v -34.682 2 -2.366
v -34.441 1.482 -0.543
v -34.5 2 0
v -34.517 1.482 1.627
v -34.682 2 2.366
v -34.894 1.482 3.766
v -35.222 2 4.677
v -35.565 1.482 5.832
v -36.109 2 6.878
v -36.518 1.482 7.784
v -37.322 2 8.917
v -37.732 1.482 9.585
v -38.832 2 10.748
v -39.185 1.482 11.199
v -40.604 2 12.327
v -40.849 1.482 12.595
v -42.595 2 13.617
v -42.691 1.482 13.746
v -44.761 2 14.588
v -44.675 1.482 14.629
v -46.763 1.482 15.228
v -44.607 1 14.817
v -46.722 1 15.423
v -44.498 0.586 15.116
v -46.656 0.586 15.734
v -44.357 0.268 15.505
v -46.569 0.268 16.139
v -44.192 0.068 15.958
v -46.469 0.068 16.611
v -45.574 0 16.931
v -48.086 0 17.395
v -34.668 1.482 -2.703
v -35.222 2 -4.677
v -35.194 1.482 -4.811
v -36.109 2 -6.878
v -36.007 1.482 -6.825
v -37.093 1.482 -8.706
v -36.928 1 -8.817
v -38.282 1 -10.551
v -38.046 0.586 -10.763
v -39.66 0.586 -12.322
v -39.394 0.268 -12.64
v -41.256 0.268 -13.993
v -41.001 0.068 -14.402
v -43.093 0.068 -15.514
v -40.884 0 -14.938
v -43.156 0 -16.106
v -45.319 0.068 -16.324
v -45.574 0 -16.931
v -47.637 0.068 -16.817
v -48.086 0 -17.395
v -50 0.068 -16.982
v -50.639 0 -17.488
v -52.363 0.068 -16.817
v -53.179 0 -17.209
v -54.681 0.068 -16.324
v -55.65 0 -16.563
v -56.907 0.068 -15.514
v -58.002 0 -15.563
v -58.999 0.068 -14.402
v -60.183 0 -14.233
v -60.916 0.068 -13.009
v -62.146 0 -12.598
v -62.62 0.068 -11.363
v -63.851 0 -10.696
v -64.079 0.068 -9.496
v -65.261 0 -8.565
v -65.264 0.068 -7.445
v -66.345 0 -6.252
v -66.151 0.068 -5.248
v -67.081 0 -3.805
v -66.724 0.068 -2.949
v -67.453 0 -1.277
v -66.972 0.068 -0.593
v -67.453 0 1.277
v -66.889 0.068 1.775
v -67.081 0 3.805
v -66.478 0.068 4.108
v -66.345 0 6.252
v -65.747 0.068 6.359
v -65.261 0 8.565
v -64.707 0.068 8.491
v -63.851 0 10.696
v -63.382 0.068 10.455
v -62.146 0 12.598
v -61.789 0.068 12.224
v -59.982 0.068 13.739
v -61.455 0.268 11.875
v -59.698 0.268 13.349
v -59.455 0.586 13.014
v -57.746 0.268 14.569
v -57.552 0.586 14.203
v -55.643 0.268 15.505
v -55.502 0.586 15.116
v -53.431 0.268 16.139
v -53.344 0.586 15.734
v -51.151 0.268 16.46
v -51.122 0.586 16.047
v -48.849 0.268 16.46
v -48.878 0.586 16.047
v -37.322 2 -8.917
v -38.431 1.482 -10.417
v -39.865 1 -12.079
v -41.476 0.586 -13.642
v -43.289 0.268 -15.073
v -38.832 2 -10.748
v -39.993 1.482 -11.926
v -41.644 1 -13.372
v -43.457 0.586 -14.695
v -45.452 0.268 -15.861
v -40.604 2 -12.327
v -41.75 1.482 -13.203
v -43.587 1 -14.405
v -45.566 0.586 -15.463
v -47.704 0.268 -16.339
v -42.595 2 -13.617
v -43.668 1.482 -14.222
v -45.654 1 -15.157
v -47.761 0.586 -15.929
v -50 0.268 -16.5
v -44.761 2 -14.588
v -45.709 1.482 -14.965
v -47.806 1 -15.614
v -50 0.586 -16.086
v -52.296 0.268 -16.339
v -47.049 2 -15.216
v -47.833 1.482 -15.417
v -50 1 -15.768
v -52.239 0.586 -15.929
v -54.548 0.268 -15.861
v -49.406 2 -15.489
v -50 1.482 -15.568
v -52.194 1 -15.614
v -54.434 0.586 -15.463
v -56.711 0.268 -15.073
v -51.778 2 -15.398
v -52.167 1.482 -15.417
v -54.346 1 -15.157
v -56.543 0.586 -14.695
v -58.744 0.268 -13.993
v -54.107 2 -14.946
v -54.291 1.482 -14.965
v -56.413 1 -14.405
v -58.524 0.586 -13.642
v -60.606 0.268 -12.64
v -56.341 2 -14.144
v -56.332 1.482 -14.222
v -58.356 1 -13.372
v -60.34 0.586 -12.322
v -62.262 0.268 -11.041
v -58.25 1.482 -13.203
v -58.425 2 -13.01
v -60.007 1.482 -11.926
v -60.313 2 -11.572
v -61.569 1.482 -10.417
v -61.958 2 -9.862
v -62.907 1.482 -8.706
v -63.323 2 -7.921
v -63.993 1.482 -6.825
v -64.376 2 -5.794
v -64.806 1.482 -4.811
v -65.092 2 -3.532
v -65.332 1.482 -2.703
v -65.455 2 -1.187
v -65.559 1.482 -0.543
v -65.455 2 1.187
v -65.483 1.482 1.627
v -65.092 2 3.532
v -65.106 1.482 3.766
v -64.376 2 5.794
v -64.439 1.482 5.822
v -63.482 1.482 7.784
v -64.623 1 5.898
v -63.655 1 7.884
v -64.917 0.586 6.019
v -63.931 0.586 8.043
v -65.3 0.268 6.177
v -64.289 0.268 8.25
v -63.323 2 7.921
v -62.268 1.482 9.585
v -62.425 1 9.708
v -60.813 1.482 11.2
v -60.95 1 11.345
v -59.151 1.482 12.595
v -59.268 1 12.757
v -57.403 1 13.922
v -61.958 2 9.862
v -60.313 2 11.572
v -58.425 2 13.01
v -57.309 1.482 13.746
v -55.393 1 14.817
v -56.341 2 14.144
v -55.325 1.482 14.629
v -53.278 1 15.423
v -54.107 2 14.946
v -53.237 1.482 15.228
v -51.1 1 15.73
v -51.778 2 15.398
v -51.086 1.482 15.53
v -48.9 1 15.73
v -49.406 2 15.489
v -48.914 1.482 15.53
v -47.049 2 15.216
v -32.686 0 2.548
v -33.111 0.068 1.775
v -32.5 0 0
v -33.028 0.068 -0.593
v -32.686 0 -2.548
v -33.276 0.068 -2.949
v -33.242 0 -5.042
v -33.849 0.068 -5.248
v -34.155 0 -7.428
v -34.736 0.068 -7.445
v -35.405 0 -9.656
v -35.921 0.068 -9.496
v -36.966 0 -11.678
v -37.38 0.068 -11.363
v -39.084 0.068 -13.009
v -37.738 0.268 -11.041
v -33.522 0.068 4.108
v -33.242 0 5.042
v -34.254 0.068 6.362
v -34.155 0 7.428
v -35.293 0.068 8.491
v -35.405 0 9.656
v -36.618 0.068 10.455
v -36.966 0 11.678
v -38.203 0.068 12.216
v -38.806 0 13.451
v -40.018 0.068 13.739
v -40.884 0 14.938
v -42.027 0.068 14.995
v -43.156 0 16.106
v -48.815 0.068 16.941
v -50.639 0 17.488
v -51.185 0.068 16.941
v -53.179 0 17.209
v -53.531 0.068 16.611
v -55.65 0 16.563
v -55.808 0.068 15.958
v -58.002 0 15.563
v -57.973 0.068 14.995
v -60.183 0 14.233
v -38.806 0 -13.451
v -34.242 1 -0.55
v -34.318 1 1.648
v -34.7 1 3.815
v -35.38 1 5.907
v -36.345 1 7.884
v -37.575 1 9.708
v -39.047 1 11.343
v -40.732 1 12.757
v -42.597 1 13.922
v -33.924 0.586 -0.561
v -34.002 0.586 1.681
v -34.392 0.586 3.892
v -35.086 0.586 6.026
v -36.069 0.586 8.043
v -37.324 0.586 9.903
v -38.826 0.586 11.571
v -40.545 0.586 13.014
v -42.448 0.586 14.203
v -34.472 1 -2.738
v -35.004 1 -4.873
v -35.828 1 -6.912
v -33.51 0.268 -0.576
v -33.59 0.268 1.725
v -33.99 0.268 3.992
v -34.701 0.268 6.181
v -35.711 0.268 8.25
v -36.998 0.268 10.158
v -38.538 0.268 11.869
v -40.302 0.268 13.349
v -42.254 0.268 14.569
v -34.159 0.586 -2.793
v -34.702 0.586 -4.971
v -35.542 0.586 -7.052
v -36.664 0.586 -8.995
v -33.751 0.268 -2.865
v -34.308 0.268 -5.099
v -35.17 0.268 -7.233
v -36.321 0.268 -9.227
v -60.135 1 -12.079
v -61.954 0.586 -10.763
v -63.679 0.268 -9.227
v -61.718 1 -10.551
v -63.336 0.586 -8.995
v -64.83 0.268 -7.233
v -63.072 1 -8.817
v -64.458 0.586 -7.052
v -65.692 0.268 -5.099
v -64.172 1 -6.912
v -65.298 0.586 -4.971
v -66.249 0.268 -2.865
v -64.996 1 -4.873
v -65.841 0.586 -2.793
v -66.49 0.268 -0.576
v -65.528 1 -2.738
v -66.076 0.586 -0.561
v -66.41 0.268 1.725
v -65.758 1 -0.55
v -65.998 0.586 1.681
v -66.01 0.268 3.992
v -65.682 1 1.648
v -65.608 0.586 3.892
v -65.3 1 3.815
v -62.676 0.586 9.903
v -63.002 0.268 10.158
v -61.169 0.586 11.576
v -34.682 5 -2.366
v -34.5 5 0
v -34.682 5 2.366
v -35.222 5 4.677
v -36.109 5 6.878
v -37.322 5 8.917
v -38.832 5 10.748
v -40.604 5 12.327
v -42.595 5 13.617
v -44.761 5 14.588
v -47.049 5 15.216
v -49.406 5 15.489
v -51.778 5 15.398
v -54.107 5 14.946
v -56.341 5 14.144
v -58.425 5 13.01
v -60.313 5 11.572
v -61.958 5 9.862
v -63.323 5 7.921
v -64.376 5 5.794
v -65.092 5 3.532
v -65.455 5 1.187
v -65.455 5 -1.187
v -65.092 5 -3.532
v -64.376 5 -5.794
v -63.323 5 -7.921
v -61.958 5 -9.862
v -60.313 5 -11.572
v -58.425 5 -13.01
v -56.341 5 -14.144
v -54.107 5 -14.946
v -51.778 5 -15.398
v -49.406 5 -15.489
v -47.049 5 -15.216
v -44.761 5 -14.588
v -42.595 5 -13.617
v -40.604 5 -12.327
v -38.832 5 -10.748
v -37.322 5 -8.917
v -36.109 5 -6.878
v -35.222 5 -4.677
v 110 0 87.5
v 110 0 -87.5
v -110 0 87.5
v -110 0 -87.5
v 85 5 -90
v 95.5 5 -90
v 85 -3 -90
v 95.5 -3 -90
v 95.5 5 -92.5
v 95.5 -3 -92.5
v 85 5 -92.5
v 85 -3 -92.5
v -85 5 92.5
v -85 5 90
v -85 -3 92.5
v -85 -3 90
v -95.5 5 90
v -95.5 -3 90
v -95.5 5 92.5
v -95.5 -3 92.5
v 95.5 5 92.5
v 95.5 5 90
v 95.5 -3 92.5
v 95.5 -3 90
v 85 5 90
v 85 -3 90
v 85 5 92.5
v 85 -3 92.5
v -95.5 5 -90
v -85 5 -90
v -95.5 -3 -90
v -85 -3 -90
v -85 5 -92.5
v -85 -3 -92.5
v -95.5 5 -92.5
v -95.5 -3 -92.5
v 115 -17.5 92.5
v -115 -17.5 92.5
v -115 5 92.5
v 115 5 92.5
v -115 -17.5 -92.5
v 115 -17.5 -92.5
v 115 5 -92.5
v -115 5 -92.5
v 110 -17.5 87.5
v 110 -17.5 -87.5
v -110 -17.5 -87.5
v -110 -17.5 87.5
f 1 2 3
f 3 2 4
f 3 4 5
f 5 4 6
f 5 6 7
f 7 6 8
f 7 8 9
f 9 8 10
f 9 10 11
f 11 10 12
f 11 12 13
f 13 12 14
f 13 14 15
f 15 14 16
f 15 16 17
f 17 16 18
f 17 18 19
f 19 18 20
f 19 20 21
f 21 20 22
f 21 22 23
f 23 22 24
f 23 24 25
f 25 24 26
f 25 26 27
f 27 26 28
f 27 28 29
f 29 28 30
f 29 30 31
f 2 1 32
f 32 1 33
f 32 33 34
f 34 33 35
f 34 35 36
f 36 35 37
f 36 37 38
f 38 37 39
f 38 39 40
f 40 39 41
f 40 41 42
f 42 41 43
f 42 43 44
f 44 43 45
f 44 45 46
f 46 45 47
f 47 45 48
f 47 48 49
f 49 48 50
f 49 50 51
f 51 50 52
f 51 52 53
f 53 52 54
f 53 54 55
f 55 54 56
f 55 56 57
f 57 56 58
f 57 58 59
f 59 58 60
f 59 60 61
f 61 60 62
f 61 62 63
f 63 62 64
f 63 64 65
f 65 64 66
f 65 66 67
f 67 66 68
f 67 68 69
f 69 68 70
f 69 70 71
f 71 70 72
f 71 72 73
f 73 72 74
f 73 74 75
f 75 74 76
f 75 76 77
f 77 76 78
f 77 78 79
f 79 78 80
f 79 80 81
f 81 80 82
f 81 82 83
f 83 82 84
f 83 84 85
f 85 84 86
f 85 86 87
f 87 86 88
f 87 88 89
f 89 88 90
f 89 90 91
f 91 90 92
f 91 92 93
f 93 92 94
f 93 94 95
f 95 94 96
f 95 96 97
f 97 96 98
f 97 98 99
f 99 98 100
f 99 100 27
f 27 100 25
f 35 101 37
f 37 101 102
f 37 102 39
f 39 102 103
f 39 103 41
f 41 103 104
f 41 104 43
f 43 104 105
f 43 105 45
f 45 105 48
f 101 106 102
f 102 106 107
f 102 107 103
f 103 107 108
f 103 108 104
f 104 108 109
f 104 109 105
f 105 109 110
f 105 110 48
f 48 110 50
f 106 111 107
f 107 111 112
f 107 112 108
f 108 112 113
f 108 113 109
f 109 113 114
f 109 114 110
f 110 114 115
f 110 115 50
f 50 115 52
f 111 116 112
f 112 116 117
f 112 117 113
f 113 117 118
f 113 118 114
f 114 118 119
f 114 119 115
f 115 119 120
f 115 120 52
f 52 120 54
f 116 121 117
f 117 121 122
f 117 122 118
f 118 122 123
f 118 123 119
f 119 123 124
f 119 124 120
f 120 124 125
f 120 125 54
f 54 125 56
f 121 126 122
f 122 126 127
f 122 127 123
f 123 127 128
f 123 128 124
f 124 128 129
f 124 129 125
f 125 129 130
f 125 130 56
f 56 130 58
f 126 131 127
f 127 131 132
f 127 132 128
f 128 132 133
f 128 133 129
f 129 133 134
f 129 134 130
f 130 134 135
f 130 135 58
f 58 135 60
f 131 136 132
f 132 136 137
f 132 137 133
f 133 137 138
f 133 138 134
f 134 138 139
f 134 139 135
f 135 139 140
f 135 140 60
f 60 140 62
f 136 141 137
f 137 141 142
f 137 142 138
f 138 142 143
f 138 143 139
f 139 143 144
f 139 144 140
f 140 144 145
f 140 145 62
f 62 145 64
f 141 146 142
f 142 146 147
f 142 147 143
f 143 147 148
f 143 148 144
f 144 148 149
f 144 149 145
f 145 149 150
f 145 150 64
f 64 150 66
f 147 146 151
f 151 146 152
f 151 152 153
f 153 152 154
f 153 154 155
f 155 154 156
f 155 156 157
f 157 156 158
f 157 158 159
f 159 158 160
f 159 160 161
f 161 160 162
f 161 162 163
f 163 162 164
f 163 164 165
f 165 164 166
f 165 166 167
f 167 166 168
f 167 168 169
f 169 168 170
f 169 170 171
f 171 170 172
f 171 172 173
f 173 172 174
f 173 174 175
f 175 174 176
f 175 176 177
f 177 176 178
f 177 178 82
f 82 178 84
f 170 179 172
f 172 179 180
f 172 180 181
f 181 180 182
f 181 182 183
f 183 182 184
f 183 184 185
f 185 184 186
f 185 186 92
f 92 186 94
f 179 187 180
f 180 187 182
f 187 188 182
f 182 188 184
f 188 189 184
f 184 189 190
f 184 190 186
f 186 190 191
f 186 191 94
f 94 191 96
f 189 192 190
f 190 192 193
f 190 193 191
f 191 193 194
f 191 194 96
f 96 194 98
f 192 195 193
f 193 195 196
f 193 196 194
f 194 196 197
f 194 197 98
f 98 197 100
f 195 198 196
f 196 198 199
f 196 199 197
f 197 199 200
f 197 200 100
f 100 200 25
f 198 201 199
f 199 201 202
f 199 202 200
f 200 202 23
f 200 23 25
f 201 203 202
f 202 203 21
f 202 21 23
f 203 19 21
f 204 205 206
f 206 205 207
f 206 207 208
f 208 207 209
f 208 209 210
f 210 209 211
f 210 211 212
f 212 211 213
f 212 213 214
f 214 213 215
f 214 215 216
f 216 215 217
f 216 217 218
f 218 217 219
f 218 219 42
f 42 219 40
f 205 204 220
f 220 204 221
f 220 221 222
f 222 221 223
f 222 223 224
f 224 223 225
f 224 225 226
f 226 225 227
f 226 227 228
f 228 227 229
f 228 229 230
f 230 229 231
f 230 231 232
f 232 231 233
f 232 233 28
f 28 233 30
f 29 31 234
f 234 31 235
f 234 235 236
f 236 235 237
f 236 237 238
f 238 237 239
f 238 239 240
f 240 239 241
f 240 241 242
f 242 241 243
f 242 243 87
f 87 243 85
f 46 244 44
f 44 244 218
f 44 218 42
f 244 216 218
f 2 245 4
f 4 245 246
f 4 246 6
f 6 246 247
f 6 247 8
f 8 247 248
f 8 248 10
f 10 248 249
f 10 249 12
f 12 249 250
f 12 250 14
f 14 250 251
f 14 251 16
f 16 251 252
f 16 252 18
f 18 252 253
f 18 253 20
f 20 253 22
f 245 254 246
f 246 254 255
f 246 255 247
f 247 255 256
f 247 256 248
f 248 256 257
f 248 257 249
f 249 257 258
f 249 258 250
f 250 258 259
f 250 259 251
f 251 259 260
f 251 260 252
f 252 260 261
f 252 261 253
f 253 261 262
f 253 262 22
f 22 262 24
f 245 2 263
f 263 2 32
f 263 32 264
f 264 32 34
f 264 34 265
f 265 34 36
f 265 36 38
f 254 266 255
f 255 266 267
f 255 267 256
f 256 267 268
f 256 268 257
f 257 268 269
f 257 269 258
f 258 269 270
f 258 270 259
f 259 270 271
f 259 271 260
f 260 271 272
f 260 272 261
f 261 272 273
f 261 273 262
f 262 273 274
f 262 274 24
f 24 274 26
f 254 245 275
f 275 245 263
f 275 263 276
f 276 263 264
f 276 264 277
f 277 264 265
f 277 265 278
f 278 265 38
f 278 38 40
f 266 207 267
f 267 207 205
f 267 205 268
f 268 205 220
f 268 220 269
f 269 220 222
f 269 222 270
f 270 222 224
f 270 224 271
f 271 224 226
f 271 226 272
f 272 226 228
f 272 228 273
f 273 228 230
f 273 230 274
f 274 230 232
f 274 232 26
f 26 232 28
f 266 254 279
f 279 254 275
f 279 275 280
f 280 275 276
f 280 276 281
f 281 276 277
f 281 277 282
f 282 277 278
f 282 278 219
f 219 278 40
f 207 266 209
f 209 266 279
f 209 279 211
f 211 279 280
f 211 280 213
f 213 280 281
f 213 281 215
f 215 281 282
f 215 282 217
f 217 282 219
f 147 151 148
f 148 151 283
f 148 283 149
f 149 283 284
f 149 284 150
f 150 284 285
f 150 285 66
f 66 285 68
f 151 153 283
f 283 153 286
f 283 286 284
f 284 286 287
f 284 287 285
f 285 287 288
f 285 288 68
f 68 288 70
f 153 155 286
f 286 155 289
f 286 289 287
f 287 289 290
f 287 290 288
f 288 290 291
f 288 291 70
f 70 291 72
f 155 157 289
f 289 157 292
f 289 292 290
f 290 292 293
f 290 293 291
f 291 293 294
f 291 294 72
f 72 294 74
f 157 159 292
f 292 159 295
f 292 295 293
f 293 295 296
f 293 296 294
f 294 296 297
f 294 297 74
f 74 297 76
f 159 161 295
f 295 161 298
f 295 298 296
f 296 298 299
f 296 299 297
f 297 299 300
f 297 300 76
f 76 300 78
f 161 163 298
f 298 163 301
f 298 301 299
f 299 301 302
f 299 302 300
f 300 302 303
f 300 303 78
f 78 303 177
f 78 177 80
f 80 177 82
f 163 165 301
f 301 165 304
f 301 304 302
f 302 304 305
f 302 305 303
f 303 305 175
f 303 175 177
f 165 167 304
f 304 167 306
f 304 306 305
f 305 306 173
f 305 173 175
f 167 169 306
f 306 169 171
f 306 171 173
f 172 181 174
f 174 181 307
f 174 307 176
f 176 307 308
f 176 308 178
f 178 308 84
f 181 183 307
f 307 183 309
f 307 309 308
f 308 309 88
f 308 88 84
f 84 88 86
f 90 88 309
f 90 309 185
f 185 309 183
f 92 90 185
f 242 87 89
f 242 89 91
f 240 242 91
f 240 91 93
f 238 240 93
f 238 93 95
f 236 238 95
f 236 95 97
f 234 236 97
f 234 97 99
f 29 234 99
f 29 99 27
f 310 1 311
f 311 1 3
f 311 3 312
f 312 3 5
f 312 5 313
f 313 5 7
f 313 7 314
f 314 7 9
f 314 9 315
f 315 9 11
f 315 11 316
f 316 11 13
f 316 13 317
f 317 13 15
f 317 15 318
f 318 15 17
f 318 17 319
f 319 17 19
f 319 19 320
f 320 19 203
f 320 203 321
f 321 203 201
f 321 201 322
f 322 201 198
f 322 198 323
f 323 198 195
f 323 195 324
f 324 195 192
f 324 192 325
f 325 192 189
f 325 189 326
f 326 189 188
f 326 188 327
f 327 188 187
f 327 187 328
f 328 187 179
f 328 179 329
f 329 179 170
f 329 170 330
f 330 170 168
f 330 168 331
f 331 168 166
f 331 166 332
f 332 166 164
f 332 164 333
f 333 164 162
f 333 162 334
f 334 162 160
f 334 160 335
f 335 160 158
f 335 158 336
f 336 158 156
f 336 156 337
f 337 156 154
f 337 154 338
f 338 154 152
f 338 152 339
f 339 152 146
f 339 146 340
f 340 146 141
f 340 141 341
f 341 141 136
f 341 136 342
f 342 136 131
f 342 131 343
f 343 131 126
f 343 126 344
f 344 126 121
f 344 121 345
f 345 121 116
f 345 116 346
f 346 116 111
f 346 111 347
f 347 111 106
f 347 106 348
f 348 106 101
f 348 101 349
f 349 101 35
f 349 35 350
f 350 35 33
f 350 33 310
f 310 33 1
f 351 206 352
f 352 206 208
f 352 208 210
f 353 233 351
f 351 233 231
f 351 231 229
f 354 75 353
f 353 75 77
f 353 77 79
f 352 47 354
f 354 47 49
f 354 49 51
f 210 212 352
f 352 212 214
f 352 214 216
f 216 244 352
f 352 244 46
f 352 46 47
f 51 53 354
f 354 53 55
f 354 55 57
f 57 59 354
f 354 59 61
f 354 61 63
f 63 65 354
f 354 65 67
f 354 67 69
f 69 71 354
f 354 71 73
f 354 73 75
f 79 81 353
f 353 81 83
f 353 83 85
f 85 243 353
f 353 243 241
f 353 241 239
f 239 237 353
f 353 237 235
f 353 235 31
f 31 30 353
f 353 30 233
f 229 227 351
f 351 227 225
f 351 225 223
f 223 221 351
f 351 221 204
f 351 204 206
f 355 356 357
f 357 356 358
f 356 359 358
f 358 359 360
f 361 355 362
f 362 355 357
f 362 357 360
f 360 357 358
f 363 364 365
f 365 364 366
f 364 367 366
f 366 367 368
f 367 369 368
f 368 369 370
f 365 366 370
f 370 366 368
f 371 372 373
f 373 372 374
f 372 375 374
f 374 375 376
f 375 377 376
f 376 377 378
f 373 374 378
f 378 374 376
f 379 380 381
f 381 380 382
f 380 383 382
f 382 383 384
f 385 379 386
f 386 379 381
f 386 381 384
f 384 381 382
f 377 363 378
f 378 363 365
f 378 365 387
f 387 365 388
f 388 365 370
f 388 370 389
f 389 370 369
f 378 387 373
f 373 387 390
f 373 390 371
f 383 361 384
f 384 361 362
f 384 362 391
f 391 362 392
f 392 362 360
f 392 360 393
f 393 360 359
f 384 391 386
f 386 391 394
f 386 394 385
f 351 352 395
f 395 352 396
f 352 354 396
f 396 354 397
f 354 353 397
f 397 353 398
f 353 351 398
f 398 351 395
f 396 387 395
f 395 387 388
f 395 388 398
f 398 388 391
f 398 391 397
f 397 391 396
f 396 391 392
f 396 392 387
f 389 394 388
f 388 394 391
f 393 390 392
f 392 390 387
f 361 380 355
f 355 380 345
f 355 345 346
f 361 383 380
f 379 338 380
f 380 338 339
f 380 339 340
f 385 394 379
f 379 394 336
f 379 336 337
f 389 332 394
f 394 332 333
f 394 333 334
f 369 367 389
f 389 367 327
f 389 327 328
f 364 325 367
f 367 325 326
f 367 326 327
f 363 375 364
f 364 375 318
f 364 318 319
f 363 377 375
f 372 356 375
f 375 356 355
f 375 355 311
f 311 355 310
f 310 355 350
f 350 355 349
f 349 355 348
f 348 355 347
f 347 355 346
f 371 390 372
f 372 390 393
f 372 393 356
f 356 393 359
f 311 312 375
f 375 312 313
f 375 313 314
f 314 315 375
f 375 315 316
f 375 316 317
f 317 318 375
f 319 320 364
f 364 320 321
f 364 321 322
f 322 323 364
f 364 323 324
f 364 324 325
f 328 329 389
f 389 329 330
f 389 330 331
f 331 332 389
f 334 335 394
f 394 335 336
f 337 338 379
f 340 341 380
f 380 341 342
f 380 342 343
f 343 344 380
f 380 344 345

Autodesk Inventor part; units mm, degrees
ref_plane "YZ Plane" through (0, 0, 0) normal (1, 0, 0) x (0, 1, 0)
ref_plane "XZ Plane" through (0, 0, 0) normal (0, 1, 0) x (-1, 0, 0)
ref_plane "XY Plane" through (0, 0, 0) normal (0, 0, 1) x (1, 0, 0)
sketch "Sketch1" plane through (0, 0, 0) normal (0, 1, 0) x (-1, 0, 0)
  line L0 (115, 92.5) -> (-115, 92.5)
  line L1 (-115, 92.5) -> (-115, -92.5)
  line L2 (-115, -92.5) -> (115, -92.5)
  line L3 (115, -92.5) -> (115, 92.5)
  point P0 (0, 0)
  dimension "d0" = 230
  dimension "d1" = 185
  dimension "d2" = 115
  dimension "d3" = 92.5
extrude "Extrusion1" add sketch "Sketch1" along normal blind 5
sketch "Sketch2" plane through (0, 0, 0) normal (0, -1, 0) x (1, 0, 0)
  line L0 (110, 87.5) -> (-110, 87.5)
  line L1 (-110, 87.5) -> (-110, -87.5)
  line L2 (-110, -87.5) -> (110, -87.5)
  line L3 (110, -87.5) -> (110, 87.5)
  line L4 (-115, 92.5) -> (115, 92.5) projected
  line L5 (-115, -92.5) -> (-115, 92.5) projected
  line L6 (115, -92.5) -> (-115, -92.5) projected
  line L7 (115, 92.5) -> (115, -92.5) projected
  line L8 (115, 92.5) -> (-115, 92.5)
  line L9 (-115, 92.5) -> (-115, -92.5)
  line L10 (-115, -92.5) -> (115, -92.5)
  line L11 (115, -92.5) -> (115, 92.5)
  point P0 (0, 0)
  dimension "d109" = 5
  dimension "d110" = 5
  dimension "d111" = 5
  dimension "d112" = 5
extrude "Extrusion2" add sketch "Sketch2" along normal blind 17.5
sketch "Sketch3" plane through (0, 5, 0) normal (0, 1, 0) x (1, 0, 0)
  circle A0 centre (-50, 0) radius 15.5
  point P0 (0, 0)
  dimension "d12" = 31
  dimension "d13" = 50
extrude "Extrusion3" cut sketch "Sketch3" against normal through all
sketch "Sketch4" plane through (0, 5, 0) normal (0, 1, 0) x (1, 0, 0)
  circle A0 centre (-50, 0) radius 15.5 projected
  line L0 (-115, -92.5) -> (115, -92.5) projected
  line L1 (115, -92.5) -> (115, 92.5) projected
  line L2 (115, 92.5) -> (-115, 92.5) projected
  line L3 (-115, 92.5) -> (-115, -92.5) projected
  circle A1 centre (-97.5, -75) radius 7.5
  circle A2 centre (-97.5, 75) radius 7.5
  circle A3 centre (97.5, -75) radius 7.5
  circle A4 centre (97.5, 75) radius 7.5
  circle A5 centre (-97.5, -75) radius 8.5
  circle A6 centre (-97.5, 75) radius 8.5
  circle A7 centre (97.5, 75) radius 8.5
  circle A8 centre (97.5, -75) radius 8.5
  point P0 (0, 0)
  dimension "d16" = 15
  dimension "d17" = 17.5
  dimension "d18" = 17.5
  dimension "d19" = 15
  dimension "d20" = 15
  dimension "d21" = 15
  dimension "d22" = 17.5
  dimension "d23" = 17.5
  dimension "d24" = 17.5
  dimension "d25" = 17.5
  dimension "d26" = 17.5
  dimension "d27" = 17.5
  dimension "d28" = 17
  dimension "d29" = 17
  dimension "d30" = 17
  dimension "d31" = 17
  dimension "d34" = 75
  dimension "d35" = 97.5
extrude "Extrusion4" [suppressed]
sketch "Sketch8" plane through (0, 5, 0) normal (0, 1, 0) x (1, 0, 0)
  circle A0 centre (-50, 0) radius 15.5 projected
  line L0 (-115, -92.5) -> (115, -92.5) projected
  line L1 (115, -92.5) -> (115, 92.5) projected
  line L2 (115, 92.5) -> (-115, 92.5) projected
  line L3 (-115, 92.5) -> (-115, -92.5) projected
  line L4 (-50, 13.5) -> (-50, -13.5)
  line L5 (-50, 13.5) -> (-115, 13.5)
  line L6 (-50, -13.5) -> (-115, -13.5)
  line L7 (-115, -13.5) -> (-115, 13.5)
  point P0 (0, 0)
  dimension "d51" = 27
  dimension "d52" = 13.5
  dimension "d62" = 31
extrude "Extrusion8" [suppressed]
sketch "Sketch10" plane through (-115, 5, -13.5) normal (0, 0, 1) x (1, 0, 0)
  line L0 (5, -20) -> (0, -20) projected
  line L1 (5, -5) -> (5, -20) projected
  line L2 (65, -5) -> (5, -5) projected
  line L3 (65, 0) -> (65, -5) projected
  line L4 (0, 0) -> (65, 0) projected
  line L5 (0, -20) -> (0, 0) projected
  line L6 (5, -17.5) -> (2.5, -17.5)
  line L7 (2.5, -17.5) -> (2.5, -2.5)
  line L8 (2.5, -2.5) -> (5, -2.5)
  line L9 (5, -2.5) -> (5, -17.5)
  line L10 (62.5, -5) -> (2.5, -5)
  line L11 (2.5, -5) -> (2.5, -2.5)
  line L12 (2.5, -2.5) -> (62.5, -2.5)
  line L13 (62.5, -2.5) -> (62.5, -5)
  point P0 (115, -5)
  dimension "d64" = 2.5
  dimension "d65" = 15
  dimension "d67" = 2.5
  dimension "d68" = 2.5
  dimension "d71" = 2.5
  dimension "d72" = 0
extrude "Extrusion10" [suppressed]
mirror "Mirror3" [suppressed]
sketch "Sketch12" plane through (0, 5, 0) normal (0, 1, 0) x (1, 0, 0)
  line L0 (-115, 13.5) -> (-110, 13.5)
  line L1 (-110, 13.5) -> (-110, 87.5)
  line L2 (-110, 87.5) -> (110, 87.5)
  line L3 (110, 87.5) -> (110, -87.5)
  line L4 (110, -87.5) -> (-110, -87.5)
  line L5 (-110, -87.5) -> (-110, -13.5)
  line L6 (-110, -13.5) -> (-115, -13.5)
  line L7 (-115, -13.5) -> (-115, -92.5)
  line L8 (-115, -92.5) -> (115, -92.5)
  line L9 (115, -92.5) -> (115, 92.5)
  line L10 (115, 92.5) -> (-115, 92.5)
  line L11 (-115, 92.5) -> (-115, 13.5)
  line L12 (-95.5, -92.5) -> (-85, -92.5)
  line L13 (-85, -92.5) -> (-85, -90)
  line L14 (-85, -90) -> (-95.5, -90)
  line L15 (-95.5, -90) -> (-95.5, -92.5)
  line L16 (85, -92.5) -> (95.5, -92.5)
  line L17 (95.5, -92.5) -> (95.5, -90)
  line L18 (95.5, -90) -> (85, -90)
  line L19 (85, -90) -> (85, -92.5)
  line L20 (-95.5, 92.5) -> (-85, 92.5)
  line L21 (-85, 92.5) -> (-85, 90)
  line L22 (-85, 90) -> (-95.5, 90)
  line L23 (-95.5, 90) -> (-95.5, 92.5)
  line L24 (85, 92.5) -> (95.5, 92.5)
  line L25 (95.5, 92.5) -> (95.5, 90)
  line L26 (95.5, 90) -> (85, 90)
  line L27 (85, 90) -> (85, 92.5)
  point P0 (0, 0)
  point P1 (0, 0)
  dimension "d87" = 10.5
  dimension "d88" = 2.5
  dimension "d90" = 10.5
  dimension "d91" = 2.5
  dimension "d93" = 2.5
  dimension "d94" = 10.5
  dimension "d96" = 2.5
  dimension "d97" = 10.5
  dimension "d114" = 85
  dimension "d115" = 85
  dimension "d116" = 85
  dimension "d117" = 85
  dimension "d122" = 5
  dimension "d123" = 5
  dimension "d124" = 230
  dimension "d125" = 230
  dimension "d126" = 19.5
  dimension "d127" = 19.5
  dimension "d128" = 19.5
  dimension "d129" = 19.5
  dimension "d131" = 5
extrude "Extrusion12" cut sketch "Sketch12" against normal blind 8 contours L10 L21 L22 L23 | L10 L25 L26 L27 | L8 L19 L18 L17 | L15 L14 L13 L8
sketch "Sketch13" plane through (0, -17.5, 0) normal (0, -1, 0) x (1, 0, 0)
  line L0 (-110, -87.5) -> (-110, 87.5) projected
  line L1 (-110, 87.5) -> (110, 87.5) projected
  line L2 (110, 87.5) -> (110, -87.5) projected
  line L3 (110, -87.5) -> (-110, -87.5) projected
  line L4 (-115, 92.5) -> (-115, -92.5) projected
  line L5 (-115, -92.5) -> (115, -92.5) projected
  line L6 (115, -92.5) -> (115, 92.5) projected
  line L7 (115, 92.5) -> (-115, 92.5) projected
  line L8 (112.75, -90.25) -> (-112.75, -90.25)
  line L9 (-112.75, -90.25) -> (-112.75, 90.25)
  line L10 (-112.75, 90.25) -> (112.75, 90.25)
  line L11 (112.75, 90.25) -> (112.75, -90.25)
  point P0 (0, 0)
  dimension "d101" = 185
  dimension "d102" = 180.5
  dimension "d104" = 225.5
  dimension "d105" = 112.75
  dimension "d106" = 90.25
extrude "Extrusion13" [suppressed]
fillet "Fillet1" radius 2 1 edges at (-65.5, 0, 0)
equation "\"d2\" = 0.5 * d0"
equation "\"d3\" = 0.5 * d1"
equation "\"d110\" = d109"
equation "\"d111\" = d109"
equation "\"d112\" = d109"
equation "\"d18\" = d17"
equation "\"d19\" = d16"
equation "\"d20\" = d16"
equation "\"d21\" = d16"
equation "\"d22\" = d17"
equation "\"d23\" = d22"
equation "\"d24\" = d17"
equation "\"d25\" = d24"
equation "\"d26\" = d17"
equation "\"d27\" = d26"
equation "\"d29\" = d28"
equation "\"d30\" = d28"
equation "\"d31\" = d28"
equation "\"d52\" = 0.5 * d51"
equation "\"d90\" = d87"
equation "\"d91\" = d88"
equation "\"d93\" = d88"
equation "\"d94\" = d87"
equation "\"d96\" = d88"
equation "\"d97\" = d87"
equation "\"d115\" = d114"
equation "\"d116\" = d114"
equation "\"d117\" = d114"
equation "\"d105\" = 0.5 * d104"
equation "\"d106\" = 0.5 * d102"
properties part number "Bottom Roof"
